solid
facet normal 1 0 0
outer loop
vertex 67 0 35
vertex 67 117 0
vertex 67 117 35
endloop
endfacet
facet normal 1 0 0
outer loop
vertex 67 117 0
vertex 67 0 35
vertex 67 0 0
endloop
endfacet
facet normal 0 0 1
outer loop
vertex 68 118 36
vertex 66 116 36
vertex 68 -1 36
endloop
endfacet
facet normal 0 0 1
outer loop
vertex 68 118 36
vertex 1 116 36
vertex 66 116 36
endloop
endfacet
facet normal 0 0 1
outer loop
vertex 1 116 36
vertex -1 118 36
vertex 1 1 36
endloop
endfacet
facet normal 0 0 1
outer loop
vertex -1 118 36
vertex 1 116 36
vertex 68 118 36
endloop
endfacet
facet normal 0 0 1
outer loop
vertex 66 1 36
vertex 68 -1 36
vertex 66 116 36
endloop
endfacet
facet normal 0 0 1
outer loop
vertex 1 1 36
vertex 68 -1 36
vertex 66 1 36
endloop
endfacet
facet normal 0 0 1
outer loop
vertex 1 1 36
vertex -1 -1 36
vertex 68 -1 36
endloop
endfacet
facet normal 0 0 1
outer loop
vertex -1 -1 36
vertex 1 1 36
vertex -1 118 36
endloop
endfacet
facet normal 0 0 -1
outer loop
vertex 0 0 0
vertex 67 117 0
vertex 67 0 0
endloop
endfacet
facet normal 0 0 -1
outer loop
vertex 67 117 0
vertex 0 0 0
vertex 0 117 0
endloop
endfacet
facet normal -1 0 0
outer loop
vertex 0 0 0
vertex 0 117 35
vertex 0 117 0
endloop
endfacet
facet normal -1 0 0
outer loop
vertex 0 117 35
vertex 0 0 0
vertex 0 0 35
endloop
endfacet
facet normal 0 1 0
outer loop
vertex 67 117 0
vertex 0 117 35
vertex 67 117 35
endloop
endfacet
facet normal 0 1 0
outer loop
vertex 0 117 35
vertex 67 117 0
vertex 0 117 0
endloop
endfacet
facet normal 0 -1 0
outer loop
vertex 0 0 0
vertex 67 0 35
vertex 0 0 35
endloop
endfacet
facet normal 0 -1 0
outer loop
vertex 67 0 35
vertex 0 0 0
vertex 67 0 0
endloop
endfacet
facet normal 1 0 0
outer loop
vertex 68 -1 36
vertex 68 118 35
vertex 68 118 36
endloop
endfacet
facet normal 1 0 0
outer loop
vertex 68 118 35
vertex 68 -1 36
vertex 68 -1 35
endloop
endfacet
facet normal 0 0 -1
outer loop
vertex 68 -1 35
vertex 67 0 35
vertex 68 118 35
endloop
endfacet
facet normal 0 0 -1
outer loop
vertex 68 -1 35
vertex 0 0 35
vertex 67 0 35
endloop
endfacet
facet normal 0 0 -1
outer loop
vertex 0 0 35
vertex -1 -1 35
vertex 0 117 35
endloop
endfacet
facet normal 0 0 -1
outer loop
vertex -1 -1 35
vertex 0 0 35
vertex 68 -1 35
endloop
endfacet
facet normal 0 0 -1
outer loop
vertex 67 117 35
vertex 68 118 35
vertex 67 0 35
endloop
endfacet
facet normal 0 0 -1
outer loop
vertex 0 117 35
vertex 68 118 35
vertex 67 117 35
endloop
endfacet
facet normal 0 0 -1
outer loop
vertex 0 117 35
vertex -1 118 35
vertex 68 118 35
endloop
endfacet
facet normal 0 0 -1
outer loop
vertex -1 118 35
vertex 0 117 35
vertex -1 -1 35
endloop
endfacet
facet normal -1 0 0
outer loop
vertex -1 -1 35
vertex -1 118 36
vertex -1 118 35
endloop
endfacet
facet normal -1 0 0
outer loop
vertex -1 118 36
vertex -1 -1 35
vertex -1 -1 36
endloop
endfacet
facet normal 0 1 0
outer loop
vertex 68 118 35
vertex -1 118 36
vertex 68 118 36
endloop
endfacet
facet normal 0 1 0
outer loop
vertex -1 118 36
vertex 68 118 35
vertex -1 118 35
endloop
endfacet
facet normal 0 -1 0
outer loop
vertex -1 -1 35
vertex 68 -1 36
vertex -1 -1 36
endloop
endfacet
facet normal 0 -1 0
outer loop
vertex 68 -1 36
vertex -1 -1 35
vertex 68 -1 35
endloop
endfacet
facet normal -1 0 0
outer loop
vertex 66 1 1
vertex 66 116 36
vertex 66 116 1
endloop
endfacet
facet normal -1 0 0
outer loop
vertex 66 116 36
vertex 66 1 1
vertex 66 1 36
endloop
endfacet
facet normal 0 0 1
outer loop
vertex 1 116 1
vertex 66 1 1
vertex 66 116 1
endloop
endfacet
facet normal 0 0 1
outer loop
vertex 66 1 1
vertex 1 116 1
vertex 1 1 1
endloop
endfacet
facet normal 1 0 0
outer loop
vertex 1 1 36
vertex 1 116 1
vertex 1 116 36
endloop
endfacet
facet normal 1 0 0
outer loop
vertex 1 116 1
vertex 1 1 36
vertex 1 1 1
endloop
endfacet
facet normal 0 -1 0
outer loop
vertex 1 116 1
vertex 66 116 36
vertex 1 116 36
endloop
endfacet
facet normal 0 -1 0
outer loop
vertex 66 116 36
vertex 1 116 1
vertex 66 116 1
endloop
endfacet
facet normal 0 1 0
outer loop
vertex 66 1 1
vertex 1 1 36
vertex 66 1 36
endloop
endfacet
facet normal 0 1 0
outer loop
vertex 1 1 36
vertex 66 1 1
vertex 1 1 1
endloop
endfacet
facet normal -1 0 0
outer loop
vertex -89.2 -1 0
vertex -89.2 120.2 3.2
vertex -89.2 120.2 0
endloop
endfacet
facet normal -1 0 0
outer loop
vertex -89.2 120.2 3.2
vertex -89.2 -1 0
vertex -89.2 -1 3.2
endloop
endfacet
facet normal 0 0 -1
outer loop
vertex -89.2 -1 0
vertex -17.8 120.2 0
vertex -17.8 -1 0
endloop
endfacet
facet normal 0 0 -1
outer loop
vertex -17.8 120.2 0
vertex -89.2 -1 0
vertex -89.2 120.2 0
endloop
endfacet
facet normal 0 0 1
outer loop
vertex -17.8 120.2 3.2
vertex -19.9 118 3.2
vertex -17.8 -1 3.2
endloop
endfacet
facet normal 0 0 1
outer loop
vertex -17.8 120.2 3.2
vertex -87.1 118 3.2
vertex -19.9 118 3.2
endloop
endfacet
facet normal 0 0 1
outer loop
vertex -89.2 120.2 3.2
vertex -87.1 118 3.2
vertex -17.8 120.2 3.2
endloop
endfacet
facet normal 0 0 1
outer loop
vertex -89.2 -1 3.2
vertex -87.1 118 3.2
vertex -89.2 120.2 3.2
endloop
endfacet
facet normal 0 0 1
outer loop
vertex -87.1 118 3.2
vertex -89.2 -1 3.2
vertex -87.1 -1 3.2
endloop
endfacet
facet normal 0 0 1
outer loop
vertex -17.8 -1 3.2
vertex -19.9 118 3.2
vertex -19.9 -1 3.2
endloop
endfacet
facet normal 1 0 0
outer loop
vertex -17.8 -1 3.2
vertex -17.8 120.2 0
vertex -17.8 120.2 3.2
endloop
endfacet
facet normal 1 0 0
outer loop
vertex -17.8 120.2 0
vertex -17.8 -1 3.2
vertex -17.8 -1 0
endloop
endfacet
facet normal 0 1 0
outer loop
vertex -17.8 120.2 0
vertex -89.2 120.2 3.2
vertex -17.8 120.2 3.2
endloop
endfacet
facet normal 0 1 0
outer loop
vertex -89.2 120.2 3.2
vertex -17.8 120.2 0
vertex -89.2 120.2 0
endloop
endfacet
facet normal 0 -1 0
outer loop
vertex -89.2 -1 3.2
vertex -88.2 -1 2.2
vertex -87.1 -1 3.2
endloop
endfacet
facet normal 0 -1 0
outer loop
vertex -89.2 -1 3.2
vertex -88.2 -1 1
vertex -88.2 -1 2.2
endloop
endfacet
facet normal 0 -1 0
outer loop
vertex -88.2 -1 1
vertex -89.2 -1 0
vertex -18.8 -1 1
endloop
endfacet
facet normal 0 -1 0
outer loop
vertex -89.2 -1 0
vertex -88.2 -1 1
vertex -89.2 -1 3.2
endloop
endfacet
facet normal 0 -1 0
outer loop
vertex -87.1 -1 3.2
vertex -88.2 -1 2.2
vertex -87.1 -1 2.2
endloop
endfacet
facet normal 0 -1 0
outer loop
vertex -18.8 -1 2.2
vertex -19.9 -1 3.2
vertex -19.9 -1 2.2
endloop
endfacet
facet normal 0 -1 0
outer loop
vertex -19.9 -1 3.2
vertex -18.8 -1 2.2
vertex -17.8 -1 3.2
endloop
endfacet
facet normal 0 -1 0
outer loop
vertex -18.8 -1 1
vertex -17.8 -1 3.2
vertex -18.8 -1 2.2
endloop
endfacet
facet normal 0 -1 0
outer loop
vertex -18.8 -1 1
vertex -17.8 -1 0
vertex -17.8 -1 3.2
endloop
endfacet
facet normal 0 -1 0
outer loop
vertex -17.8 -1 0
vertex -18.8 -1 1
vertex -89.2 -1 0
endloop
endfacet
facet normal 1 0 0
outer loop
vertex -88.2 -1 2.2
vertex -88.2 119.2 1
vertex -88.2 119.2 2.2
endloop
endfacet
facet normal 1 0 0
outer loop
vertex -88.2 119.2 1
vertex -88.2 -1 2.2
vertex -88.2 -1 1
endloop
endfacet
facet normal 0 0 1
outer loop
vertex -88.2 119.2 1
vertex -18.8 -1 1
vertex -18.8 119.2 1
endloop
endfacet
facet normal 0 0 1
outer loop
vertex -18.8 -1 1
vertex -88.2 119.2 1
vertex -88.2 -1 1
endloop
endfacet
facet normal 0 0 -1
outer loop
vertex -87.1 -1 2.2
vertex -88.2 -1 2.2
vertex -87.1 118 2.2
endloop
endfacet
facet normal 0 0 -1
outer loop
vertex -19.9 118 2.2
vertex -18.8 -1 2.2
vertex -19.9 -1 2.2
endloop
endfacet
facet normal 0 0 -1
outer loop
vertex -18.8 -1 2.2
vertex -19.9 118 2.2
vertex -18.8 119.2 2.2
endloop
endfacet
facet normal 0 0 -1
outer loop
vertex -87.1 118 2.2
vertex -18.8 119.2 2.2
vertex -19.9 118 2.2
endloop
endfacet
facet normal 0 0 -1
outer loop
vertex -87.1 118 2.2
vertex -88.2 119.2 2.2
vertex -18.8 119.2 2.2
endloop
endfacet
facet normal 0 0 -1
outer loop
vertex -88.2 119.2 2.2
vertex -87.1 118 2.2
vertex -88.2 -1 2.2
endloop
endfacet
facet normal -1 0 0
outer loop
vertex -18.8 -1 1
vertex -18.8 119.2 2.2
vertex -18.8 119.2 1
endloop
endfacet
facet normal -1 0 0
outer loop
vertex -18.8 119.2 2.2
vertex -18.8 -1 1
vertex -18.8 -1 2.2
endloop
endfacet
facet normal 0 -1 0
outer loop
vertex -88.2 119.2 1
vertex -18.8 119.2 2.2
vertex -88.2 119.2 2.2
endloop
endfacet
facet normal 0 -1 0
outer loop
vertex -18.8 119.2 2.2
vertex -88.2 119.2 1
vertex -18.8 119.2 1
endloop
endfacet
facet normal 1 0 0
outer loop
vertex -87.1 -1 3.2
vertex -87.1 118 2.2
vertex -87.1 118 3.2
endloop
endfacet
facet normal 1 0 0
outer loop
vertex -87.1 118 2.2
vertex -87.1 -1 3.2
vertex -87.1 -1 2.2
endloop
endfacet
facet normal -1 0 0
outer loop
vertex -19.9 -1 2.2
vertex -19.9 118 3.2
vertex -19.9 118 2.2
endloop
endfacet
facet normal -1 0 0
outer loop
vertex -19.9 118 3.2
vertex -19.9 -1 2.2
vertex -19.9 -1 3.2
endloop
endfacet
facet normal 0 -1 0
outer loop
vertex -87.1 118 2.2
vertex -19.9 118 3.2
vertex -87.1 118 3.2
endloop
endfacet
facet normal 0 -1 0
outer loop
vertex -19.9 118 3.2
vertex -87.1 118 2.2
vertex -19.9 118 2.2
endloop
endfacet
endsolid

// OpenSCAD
// Universal Box by Paxy
//https://www.thingiverse.com/thing:3286345

/*Customizer Variables*/
height=65;//[5:1:100]
width=115;//[5:1:100]
depth=35;//[5:1:100]
wall=1;//[0.5:0.2:5]
tollerance=1.2;//[0.5:0.2:5]

//redner box
render()base();

//reder cap
//try how it close the base
//translate([0,-wall,depth-wall]) render() cover(); 
translate([-20,0,2*wall+wall*tollerance]) rotate([180,0,180]) render() cover();

/* modules */

module base()
{
    difference()
    {
       union()
        {
            cube([height+2*wall,width+2*wall,depth+wall]);
            translate([-wall,-wall,depth]) cube([height+4*wall,width+4*wall,wall]);
        }    
        translate([wall,wall,wall])cube([height,width,depth]);
        
        // place for holes
        
        
    }
}

module cover(){
    difference()
    {
        translate([-wall*tollerance-wall,-wall,0]) cube([height+4*wall+2*tollerance*wall,width+5*wall+tollerance*wall,2*wall+wall*tollerance]);
        translate([-wall*tollerance,-wall,wall]) cube([height+2*wall+2*tollerance*wall,width+4*wall+tollerance*wall,tollerance*wall]);
        
        translate([-(tollerance-wall)/2,-wall,0]) cube([height+wall+wall*tollerance,width+4*wall,wall]);
    }
    
}
